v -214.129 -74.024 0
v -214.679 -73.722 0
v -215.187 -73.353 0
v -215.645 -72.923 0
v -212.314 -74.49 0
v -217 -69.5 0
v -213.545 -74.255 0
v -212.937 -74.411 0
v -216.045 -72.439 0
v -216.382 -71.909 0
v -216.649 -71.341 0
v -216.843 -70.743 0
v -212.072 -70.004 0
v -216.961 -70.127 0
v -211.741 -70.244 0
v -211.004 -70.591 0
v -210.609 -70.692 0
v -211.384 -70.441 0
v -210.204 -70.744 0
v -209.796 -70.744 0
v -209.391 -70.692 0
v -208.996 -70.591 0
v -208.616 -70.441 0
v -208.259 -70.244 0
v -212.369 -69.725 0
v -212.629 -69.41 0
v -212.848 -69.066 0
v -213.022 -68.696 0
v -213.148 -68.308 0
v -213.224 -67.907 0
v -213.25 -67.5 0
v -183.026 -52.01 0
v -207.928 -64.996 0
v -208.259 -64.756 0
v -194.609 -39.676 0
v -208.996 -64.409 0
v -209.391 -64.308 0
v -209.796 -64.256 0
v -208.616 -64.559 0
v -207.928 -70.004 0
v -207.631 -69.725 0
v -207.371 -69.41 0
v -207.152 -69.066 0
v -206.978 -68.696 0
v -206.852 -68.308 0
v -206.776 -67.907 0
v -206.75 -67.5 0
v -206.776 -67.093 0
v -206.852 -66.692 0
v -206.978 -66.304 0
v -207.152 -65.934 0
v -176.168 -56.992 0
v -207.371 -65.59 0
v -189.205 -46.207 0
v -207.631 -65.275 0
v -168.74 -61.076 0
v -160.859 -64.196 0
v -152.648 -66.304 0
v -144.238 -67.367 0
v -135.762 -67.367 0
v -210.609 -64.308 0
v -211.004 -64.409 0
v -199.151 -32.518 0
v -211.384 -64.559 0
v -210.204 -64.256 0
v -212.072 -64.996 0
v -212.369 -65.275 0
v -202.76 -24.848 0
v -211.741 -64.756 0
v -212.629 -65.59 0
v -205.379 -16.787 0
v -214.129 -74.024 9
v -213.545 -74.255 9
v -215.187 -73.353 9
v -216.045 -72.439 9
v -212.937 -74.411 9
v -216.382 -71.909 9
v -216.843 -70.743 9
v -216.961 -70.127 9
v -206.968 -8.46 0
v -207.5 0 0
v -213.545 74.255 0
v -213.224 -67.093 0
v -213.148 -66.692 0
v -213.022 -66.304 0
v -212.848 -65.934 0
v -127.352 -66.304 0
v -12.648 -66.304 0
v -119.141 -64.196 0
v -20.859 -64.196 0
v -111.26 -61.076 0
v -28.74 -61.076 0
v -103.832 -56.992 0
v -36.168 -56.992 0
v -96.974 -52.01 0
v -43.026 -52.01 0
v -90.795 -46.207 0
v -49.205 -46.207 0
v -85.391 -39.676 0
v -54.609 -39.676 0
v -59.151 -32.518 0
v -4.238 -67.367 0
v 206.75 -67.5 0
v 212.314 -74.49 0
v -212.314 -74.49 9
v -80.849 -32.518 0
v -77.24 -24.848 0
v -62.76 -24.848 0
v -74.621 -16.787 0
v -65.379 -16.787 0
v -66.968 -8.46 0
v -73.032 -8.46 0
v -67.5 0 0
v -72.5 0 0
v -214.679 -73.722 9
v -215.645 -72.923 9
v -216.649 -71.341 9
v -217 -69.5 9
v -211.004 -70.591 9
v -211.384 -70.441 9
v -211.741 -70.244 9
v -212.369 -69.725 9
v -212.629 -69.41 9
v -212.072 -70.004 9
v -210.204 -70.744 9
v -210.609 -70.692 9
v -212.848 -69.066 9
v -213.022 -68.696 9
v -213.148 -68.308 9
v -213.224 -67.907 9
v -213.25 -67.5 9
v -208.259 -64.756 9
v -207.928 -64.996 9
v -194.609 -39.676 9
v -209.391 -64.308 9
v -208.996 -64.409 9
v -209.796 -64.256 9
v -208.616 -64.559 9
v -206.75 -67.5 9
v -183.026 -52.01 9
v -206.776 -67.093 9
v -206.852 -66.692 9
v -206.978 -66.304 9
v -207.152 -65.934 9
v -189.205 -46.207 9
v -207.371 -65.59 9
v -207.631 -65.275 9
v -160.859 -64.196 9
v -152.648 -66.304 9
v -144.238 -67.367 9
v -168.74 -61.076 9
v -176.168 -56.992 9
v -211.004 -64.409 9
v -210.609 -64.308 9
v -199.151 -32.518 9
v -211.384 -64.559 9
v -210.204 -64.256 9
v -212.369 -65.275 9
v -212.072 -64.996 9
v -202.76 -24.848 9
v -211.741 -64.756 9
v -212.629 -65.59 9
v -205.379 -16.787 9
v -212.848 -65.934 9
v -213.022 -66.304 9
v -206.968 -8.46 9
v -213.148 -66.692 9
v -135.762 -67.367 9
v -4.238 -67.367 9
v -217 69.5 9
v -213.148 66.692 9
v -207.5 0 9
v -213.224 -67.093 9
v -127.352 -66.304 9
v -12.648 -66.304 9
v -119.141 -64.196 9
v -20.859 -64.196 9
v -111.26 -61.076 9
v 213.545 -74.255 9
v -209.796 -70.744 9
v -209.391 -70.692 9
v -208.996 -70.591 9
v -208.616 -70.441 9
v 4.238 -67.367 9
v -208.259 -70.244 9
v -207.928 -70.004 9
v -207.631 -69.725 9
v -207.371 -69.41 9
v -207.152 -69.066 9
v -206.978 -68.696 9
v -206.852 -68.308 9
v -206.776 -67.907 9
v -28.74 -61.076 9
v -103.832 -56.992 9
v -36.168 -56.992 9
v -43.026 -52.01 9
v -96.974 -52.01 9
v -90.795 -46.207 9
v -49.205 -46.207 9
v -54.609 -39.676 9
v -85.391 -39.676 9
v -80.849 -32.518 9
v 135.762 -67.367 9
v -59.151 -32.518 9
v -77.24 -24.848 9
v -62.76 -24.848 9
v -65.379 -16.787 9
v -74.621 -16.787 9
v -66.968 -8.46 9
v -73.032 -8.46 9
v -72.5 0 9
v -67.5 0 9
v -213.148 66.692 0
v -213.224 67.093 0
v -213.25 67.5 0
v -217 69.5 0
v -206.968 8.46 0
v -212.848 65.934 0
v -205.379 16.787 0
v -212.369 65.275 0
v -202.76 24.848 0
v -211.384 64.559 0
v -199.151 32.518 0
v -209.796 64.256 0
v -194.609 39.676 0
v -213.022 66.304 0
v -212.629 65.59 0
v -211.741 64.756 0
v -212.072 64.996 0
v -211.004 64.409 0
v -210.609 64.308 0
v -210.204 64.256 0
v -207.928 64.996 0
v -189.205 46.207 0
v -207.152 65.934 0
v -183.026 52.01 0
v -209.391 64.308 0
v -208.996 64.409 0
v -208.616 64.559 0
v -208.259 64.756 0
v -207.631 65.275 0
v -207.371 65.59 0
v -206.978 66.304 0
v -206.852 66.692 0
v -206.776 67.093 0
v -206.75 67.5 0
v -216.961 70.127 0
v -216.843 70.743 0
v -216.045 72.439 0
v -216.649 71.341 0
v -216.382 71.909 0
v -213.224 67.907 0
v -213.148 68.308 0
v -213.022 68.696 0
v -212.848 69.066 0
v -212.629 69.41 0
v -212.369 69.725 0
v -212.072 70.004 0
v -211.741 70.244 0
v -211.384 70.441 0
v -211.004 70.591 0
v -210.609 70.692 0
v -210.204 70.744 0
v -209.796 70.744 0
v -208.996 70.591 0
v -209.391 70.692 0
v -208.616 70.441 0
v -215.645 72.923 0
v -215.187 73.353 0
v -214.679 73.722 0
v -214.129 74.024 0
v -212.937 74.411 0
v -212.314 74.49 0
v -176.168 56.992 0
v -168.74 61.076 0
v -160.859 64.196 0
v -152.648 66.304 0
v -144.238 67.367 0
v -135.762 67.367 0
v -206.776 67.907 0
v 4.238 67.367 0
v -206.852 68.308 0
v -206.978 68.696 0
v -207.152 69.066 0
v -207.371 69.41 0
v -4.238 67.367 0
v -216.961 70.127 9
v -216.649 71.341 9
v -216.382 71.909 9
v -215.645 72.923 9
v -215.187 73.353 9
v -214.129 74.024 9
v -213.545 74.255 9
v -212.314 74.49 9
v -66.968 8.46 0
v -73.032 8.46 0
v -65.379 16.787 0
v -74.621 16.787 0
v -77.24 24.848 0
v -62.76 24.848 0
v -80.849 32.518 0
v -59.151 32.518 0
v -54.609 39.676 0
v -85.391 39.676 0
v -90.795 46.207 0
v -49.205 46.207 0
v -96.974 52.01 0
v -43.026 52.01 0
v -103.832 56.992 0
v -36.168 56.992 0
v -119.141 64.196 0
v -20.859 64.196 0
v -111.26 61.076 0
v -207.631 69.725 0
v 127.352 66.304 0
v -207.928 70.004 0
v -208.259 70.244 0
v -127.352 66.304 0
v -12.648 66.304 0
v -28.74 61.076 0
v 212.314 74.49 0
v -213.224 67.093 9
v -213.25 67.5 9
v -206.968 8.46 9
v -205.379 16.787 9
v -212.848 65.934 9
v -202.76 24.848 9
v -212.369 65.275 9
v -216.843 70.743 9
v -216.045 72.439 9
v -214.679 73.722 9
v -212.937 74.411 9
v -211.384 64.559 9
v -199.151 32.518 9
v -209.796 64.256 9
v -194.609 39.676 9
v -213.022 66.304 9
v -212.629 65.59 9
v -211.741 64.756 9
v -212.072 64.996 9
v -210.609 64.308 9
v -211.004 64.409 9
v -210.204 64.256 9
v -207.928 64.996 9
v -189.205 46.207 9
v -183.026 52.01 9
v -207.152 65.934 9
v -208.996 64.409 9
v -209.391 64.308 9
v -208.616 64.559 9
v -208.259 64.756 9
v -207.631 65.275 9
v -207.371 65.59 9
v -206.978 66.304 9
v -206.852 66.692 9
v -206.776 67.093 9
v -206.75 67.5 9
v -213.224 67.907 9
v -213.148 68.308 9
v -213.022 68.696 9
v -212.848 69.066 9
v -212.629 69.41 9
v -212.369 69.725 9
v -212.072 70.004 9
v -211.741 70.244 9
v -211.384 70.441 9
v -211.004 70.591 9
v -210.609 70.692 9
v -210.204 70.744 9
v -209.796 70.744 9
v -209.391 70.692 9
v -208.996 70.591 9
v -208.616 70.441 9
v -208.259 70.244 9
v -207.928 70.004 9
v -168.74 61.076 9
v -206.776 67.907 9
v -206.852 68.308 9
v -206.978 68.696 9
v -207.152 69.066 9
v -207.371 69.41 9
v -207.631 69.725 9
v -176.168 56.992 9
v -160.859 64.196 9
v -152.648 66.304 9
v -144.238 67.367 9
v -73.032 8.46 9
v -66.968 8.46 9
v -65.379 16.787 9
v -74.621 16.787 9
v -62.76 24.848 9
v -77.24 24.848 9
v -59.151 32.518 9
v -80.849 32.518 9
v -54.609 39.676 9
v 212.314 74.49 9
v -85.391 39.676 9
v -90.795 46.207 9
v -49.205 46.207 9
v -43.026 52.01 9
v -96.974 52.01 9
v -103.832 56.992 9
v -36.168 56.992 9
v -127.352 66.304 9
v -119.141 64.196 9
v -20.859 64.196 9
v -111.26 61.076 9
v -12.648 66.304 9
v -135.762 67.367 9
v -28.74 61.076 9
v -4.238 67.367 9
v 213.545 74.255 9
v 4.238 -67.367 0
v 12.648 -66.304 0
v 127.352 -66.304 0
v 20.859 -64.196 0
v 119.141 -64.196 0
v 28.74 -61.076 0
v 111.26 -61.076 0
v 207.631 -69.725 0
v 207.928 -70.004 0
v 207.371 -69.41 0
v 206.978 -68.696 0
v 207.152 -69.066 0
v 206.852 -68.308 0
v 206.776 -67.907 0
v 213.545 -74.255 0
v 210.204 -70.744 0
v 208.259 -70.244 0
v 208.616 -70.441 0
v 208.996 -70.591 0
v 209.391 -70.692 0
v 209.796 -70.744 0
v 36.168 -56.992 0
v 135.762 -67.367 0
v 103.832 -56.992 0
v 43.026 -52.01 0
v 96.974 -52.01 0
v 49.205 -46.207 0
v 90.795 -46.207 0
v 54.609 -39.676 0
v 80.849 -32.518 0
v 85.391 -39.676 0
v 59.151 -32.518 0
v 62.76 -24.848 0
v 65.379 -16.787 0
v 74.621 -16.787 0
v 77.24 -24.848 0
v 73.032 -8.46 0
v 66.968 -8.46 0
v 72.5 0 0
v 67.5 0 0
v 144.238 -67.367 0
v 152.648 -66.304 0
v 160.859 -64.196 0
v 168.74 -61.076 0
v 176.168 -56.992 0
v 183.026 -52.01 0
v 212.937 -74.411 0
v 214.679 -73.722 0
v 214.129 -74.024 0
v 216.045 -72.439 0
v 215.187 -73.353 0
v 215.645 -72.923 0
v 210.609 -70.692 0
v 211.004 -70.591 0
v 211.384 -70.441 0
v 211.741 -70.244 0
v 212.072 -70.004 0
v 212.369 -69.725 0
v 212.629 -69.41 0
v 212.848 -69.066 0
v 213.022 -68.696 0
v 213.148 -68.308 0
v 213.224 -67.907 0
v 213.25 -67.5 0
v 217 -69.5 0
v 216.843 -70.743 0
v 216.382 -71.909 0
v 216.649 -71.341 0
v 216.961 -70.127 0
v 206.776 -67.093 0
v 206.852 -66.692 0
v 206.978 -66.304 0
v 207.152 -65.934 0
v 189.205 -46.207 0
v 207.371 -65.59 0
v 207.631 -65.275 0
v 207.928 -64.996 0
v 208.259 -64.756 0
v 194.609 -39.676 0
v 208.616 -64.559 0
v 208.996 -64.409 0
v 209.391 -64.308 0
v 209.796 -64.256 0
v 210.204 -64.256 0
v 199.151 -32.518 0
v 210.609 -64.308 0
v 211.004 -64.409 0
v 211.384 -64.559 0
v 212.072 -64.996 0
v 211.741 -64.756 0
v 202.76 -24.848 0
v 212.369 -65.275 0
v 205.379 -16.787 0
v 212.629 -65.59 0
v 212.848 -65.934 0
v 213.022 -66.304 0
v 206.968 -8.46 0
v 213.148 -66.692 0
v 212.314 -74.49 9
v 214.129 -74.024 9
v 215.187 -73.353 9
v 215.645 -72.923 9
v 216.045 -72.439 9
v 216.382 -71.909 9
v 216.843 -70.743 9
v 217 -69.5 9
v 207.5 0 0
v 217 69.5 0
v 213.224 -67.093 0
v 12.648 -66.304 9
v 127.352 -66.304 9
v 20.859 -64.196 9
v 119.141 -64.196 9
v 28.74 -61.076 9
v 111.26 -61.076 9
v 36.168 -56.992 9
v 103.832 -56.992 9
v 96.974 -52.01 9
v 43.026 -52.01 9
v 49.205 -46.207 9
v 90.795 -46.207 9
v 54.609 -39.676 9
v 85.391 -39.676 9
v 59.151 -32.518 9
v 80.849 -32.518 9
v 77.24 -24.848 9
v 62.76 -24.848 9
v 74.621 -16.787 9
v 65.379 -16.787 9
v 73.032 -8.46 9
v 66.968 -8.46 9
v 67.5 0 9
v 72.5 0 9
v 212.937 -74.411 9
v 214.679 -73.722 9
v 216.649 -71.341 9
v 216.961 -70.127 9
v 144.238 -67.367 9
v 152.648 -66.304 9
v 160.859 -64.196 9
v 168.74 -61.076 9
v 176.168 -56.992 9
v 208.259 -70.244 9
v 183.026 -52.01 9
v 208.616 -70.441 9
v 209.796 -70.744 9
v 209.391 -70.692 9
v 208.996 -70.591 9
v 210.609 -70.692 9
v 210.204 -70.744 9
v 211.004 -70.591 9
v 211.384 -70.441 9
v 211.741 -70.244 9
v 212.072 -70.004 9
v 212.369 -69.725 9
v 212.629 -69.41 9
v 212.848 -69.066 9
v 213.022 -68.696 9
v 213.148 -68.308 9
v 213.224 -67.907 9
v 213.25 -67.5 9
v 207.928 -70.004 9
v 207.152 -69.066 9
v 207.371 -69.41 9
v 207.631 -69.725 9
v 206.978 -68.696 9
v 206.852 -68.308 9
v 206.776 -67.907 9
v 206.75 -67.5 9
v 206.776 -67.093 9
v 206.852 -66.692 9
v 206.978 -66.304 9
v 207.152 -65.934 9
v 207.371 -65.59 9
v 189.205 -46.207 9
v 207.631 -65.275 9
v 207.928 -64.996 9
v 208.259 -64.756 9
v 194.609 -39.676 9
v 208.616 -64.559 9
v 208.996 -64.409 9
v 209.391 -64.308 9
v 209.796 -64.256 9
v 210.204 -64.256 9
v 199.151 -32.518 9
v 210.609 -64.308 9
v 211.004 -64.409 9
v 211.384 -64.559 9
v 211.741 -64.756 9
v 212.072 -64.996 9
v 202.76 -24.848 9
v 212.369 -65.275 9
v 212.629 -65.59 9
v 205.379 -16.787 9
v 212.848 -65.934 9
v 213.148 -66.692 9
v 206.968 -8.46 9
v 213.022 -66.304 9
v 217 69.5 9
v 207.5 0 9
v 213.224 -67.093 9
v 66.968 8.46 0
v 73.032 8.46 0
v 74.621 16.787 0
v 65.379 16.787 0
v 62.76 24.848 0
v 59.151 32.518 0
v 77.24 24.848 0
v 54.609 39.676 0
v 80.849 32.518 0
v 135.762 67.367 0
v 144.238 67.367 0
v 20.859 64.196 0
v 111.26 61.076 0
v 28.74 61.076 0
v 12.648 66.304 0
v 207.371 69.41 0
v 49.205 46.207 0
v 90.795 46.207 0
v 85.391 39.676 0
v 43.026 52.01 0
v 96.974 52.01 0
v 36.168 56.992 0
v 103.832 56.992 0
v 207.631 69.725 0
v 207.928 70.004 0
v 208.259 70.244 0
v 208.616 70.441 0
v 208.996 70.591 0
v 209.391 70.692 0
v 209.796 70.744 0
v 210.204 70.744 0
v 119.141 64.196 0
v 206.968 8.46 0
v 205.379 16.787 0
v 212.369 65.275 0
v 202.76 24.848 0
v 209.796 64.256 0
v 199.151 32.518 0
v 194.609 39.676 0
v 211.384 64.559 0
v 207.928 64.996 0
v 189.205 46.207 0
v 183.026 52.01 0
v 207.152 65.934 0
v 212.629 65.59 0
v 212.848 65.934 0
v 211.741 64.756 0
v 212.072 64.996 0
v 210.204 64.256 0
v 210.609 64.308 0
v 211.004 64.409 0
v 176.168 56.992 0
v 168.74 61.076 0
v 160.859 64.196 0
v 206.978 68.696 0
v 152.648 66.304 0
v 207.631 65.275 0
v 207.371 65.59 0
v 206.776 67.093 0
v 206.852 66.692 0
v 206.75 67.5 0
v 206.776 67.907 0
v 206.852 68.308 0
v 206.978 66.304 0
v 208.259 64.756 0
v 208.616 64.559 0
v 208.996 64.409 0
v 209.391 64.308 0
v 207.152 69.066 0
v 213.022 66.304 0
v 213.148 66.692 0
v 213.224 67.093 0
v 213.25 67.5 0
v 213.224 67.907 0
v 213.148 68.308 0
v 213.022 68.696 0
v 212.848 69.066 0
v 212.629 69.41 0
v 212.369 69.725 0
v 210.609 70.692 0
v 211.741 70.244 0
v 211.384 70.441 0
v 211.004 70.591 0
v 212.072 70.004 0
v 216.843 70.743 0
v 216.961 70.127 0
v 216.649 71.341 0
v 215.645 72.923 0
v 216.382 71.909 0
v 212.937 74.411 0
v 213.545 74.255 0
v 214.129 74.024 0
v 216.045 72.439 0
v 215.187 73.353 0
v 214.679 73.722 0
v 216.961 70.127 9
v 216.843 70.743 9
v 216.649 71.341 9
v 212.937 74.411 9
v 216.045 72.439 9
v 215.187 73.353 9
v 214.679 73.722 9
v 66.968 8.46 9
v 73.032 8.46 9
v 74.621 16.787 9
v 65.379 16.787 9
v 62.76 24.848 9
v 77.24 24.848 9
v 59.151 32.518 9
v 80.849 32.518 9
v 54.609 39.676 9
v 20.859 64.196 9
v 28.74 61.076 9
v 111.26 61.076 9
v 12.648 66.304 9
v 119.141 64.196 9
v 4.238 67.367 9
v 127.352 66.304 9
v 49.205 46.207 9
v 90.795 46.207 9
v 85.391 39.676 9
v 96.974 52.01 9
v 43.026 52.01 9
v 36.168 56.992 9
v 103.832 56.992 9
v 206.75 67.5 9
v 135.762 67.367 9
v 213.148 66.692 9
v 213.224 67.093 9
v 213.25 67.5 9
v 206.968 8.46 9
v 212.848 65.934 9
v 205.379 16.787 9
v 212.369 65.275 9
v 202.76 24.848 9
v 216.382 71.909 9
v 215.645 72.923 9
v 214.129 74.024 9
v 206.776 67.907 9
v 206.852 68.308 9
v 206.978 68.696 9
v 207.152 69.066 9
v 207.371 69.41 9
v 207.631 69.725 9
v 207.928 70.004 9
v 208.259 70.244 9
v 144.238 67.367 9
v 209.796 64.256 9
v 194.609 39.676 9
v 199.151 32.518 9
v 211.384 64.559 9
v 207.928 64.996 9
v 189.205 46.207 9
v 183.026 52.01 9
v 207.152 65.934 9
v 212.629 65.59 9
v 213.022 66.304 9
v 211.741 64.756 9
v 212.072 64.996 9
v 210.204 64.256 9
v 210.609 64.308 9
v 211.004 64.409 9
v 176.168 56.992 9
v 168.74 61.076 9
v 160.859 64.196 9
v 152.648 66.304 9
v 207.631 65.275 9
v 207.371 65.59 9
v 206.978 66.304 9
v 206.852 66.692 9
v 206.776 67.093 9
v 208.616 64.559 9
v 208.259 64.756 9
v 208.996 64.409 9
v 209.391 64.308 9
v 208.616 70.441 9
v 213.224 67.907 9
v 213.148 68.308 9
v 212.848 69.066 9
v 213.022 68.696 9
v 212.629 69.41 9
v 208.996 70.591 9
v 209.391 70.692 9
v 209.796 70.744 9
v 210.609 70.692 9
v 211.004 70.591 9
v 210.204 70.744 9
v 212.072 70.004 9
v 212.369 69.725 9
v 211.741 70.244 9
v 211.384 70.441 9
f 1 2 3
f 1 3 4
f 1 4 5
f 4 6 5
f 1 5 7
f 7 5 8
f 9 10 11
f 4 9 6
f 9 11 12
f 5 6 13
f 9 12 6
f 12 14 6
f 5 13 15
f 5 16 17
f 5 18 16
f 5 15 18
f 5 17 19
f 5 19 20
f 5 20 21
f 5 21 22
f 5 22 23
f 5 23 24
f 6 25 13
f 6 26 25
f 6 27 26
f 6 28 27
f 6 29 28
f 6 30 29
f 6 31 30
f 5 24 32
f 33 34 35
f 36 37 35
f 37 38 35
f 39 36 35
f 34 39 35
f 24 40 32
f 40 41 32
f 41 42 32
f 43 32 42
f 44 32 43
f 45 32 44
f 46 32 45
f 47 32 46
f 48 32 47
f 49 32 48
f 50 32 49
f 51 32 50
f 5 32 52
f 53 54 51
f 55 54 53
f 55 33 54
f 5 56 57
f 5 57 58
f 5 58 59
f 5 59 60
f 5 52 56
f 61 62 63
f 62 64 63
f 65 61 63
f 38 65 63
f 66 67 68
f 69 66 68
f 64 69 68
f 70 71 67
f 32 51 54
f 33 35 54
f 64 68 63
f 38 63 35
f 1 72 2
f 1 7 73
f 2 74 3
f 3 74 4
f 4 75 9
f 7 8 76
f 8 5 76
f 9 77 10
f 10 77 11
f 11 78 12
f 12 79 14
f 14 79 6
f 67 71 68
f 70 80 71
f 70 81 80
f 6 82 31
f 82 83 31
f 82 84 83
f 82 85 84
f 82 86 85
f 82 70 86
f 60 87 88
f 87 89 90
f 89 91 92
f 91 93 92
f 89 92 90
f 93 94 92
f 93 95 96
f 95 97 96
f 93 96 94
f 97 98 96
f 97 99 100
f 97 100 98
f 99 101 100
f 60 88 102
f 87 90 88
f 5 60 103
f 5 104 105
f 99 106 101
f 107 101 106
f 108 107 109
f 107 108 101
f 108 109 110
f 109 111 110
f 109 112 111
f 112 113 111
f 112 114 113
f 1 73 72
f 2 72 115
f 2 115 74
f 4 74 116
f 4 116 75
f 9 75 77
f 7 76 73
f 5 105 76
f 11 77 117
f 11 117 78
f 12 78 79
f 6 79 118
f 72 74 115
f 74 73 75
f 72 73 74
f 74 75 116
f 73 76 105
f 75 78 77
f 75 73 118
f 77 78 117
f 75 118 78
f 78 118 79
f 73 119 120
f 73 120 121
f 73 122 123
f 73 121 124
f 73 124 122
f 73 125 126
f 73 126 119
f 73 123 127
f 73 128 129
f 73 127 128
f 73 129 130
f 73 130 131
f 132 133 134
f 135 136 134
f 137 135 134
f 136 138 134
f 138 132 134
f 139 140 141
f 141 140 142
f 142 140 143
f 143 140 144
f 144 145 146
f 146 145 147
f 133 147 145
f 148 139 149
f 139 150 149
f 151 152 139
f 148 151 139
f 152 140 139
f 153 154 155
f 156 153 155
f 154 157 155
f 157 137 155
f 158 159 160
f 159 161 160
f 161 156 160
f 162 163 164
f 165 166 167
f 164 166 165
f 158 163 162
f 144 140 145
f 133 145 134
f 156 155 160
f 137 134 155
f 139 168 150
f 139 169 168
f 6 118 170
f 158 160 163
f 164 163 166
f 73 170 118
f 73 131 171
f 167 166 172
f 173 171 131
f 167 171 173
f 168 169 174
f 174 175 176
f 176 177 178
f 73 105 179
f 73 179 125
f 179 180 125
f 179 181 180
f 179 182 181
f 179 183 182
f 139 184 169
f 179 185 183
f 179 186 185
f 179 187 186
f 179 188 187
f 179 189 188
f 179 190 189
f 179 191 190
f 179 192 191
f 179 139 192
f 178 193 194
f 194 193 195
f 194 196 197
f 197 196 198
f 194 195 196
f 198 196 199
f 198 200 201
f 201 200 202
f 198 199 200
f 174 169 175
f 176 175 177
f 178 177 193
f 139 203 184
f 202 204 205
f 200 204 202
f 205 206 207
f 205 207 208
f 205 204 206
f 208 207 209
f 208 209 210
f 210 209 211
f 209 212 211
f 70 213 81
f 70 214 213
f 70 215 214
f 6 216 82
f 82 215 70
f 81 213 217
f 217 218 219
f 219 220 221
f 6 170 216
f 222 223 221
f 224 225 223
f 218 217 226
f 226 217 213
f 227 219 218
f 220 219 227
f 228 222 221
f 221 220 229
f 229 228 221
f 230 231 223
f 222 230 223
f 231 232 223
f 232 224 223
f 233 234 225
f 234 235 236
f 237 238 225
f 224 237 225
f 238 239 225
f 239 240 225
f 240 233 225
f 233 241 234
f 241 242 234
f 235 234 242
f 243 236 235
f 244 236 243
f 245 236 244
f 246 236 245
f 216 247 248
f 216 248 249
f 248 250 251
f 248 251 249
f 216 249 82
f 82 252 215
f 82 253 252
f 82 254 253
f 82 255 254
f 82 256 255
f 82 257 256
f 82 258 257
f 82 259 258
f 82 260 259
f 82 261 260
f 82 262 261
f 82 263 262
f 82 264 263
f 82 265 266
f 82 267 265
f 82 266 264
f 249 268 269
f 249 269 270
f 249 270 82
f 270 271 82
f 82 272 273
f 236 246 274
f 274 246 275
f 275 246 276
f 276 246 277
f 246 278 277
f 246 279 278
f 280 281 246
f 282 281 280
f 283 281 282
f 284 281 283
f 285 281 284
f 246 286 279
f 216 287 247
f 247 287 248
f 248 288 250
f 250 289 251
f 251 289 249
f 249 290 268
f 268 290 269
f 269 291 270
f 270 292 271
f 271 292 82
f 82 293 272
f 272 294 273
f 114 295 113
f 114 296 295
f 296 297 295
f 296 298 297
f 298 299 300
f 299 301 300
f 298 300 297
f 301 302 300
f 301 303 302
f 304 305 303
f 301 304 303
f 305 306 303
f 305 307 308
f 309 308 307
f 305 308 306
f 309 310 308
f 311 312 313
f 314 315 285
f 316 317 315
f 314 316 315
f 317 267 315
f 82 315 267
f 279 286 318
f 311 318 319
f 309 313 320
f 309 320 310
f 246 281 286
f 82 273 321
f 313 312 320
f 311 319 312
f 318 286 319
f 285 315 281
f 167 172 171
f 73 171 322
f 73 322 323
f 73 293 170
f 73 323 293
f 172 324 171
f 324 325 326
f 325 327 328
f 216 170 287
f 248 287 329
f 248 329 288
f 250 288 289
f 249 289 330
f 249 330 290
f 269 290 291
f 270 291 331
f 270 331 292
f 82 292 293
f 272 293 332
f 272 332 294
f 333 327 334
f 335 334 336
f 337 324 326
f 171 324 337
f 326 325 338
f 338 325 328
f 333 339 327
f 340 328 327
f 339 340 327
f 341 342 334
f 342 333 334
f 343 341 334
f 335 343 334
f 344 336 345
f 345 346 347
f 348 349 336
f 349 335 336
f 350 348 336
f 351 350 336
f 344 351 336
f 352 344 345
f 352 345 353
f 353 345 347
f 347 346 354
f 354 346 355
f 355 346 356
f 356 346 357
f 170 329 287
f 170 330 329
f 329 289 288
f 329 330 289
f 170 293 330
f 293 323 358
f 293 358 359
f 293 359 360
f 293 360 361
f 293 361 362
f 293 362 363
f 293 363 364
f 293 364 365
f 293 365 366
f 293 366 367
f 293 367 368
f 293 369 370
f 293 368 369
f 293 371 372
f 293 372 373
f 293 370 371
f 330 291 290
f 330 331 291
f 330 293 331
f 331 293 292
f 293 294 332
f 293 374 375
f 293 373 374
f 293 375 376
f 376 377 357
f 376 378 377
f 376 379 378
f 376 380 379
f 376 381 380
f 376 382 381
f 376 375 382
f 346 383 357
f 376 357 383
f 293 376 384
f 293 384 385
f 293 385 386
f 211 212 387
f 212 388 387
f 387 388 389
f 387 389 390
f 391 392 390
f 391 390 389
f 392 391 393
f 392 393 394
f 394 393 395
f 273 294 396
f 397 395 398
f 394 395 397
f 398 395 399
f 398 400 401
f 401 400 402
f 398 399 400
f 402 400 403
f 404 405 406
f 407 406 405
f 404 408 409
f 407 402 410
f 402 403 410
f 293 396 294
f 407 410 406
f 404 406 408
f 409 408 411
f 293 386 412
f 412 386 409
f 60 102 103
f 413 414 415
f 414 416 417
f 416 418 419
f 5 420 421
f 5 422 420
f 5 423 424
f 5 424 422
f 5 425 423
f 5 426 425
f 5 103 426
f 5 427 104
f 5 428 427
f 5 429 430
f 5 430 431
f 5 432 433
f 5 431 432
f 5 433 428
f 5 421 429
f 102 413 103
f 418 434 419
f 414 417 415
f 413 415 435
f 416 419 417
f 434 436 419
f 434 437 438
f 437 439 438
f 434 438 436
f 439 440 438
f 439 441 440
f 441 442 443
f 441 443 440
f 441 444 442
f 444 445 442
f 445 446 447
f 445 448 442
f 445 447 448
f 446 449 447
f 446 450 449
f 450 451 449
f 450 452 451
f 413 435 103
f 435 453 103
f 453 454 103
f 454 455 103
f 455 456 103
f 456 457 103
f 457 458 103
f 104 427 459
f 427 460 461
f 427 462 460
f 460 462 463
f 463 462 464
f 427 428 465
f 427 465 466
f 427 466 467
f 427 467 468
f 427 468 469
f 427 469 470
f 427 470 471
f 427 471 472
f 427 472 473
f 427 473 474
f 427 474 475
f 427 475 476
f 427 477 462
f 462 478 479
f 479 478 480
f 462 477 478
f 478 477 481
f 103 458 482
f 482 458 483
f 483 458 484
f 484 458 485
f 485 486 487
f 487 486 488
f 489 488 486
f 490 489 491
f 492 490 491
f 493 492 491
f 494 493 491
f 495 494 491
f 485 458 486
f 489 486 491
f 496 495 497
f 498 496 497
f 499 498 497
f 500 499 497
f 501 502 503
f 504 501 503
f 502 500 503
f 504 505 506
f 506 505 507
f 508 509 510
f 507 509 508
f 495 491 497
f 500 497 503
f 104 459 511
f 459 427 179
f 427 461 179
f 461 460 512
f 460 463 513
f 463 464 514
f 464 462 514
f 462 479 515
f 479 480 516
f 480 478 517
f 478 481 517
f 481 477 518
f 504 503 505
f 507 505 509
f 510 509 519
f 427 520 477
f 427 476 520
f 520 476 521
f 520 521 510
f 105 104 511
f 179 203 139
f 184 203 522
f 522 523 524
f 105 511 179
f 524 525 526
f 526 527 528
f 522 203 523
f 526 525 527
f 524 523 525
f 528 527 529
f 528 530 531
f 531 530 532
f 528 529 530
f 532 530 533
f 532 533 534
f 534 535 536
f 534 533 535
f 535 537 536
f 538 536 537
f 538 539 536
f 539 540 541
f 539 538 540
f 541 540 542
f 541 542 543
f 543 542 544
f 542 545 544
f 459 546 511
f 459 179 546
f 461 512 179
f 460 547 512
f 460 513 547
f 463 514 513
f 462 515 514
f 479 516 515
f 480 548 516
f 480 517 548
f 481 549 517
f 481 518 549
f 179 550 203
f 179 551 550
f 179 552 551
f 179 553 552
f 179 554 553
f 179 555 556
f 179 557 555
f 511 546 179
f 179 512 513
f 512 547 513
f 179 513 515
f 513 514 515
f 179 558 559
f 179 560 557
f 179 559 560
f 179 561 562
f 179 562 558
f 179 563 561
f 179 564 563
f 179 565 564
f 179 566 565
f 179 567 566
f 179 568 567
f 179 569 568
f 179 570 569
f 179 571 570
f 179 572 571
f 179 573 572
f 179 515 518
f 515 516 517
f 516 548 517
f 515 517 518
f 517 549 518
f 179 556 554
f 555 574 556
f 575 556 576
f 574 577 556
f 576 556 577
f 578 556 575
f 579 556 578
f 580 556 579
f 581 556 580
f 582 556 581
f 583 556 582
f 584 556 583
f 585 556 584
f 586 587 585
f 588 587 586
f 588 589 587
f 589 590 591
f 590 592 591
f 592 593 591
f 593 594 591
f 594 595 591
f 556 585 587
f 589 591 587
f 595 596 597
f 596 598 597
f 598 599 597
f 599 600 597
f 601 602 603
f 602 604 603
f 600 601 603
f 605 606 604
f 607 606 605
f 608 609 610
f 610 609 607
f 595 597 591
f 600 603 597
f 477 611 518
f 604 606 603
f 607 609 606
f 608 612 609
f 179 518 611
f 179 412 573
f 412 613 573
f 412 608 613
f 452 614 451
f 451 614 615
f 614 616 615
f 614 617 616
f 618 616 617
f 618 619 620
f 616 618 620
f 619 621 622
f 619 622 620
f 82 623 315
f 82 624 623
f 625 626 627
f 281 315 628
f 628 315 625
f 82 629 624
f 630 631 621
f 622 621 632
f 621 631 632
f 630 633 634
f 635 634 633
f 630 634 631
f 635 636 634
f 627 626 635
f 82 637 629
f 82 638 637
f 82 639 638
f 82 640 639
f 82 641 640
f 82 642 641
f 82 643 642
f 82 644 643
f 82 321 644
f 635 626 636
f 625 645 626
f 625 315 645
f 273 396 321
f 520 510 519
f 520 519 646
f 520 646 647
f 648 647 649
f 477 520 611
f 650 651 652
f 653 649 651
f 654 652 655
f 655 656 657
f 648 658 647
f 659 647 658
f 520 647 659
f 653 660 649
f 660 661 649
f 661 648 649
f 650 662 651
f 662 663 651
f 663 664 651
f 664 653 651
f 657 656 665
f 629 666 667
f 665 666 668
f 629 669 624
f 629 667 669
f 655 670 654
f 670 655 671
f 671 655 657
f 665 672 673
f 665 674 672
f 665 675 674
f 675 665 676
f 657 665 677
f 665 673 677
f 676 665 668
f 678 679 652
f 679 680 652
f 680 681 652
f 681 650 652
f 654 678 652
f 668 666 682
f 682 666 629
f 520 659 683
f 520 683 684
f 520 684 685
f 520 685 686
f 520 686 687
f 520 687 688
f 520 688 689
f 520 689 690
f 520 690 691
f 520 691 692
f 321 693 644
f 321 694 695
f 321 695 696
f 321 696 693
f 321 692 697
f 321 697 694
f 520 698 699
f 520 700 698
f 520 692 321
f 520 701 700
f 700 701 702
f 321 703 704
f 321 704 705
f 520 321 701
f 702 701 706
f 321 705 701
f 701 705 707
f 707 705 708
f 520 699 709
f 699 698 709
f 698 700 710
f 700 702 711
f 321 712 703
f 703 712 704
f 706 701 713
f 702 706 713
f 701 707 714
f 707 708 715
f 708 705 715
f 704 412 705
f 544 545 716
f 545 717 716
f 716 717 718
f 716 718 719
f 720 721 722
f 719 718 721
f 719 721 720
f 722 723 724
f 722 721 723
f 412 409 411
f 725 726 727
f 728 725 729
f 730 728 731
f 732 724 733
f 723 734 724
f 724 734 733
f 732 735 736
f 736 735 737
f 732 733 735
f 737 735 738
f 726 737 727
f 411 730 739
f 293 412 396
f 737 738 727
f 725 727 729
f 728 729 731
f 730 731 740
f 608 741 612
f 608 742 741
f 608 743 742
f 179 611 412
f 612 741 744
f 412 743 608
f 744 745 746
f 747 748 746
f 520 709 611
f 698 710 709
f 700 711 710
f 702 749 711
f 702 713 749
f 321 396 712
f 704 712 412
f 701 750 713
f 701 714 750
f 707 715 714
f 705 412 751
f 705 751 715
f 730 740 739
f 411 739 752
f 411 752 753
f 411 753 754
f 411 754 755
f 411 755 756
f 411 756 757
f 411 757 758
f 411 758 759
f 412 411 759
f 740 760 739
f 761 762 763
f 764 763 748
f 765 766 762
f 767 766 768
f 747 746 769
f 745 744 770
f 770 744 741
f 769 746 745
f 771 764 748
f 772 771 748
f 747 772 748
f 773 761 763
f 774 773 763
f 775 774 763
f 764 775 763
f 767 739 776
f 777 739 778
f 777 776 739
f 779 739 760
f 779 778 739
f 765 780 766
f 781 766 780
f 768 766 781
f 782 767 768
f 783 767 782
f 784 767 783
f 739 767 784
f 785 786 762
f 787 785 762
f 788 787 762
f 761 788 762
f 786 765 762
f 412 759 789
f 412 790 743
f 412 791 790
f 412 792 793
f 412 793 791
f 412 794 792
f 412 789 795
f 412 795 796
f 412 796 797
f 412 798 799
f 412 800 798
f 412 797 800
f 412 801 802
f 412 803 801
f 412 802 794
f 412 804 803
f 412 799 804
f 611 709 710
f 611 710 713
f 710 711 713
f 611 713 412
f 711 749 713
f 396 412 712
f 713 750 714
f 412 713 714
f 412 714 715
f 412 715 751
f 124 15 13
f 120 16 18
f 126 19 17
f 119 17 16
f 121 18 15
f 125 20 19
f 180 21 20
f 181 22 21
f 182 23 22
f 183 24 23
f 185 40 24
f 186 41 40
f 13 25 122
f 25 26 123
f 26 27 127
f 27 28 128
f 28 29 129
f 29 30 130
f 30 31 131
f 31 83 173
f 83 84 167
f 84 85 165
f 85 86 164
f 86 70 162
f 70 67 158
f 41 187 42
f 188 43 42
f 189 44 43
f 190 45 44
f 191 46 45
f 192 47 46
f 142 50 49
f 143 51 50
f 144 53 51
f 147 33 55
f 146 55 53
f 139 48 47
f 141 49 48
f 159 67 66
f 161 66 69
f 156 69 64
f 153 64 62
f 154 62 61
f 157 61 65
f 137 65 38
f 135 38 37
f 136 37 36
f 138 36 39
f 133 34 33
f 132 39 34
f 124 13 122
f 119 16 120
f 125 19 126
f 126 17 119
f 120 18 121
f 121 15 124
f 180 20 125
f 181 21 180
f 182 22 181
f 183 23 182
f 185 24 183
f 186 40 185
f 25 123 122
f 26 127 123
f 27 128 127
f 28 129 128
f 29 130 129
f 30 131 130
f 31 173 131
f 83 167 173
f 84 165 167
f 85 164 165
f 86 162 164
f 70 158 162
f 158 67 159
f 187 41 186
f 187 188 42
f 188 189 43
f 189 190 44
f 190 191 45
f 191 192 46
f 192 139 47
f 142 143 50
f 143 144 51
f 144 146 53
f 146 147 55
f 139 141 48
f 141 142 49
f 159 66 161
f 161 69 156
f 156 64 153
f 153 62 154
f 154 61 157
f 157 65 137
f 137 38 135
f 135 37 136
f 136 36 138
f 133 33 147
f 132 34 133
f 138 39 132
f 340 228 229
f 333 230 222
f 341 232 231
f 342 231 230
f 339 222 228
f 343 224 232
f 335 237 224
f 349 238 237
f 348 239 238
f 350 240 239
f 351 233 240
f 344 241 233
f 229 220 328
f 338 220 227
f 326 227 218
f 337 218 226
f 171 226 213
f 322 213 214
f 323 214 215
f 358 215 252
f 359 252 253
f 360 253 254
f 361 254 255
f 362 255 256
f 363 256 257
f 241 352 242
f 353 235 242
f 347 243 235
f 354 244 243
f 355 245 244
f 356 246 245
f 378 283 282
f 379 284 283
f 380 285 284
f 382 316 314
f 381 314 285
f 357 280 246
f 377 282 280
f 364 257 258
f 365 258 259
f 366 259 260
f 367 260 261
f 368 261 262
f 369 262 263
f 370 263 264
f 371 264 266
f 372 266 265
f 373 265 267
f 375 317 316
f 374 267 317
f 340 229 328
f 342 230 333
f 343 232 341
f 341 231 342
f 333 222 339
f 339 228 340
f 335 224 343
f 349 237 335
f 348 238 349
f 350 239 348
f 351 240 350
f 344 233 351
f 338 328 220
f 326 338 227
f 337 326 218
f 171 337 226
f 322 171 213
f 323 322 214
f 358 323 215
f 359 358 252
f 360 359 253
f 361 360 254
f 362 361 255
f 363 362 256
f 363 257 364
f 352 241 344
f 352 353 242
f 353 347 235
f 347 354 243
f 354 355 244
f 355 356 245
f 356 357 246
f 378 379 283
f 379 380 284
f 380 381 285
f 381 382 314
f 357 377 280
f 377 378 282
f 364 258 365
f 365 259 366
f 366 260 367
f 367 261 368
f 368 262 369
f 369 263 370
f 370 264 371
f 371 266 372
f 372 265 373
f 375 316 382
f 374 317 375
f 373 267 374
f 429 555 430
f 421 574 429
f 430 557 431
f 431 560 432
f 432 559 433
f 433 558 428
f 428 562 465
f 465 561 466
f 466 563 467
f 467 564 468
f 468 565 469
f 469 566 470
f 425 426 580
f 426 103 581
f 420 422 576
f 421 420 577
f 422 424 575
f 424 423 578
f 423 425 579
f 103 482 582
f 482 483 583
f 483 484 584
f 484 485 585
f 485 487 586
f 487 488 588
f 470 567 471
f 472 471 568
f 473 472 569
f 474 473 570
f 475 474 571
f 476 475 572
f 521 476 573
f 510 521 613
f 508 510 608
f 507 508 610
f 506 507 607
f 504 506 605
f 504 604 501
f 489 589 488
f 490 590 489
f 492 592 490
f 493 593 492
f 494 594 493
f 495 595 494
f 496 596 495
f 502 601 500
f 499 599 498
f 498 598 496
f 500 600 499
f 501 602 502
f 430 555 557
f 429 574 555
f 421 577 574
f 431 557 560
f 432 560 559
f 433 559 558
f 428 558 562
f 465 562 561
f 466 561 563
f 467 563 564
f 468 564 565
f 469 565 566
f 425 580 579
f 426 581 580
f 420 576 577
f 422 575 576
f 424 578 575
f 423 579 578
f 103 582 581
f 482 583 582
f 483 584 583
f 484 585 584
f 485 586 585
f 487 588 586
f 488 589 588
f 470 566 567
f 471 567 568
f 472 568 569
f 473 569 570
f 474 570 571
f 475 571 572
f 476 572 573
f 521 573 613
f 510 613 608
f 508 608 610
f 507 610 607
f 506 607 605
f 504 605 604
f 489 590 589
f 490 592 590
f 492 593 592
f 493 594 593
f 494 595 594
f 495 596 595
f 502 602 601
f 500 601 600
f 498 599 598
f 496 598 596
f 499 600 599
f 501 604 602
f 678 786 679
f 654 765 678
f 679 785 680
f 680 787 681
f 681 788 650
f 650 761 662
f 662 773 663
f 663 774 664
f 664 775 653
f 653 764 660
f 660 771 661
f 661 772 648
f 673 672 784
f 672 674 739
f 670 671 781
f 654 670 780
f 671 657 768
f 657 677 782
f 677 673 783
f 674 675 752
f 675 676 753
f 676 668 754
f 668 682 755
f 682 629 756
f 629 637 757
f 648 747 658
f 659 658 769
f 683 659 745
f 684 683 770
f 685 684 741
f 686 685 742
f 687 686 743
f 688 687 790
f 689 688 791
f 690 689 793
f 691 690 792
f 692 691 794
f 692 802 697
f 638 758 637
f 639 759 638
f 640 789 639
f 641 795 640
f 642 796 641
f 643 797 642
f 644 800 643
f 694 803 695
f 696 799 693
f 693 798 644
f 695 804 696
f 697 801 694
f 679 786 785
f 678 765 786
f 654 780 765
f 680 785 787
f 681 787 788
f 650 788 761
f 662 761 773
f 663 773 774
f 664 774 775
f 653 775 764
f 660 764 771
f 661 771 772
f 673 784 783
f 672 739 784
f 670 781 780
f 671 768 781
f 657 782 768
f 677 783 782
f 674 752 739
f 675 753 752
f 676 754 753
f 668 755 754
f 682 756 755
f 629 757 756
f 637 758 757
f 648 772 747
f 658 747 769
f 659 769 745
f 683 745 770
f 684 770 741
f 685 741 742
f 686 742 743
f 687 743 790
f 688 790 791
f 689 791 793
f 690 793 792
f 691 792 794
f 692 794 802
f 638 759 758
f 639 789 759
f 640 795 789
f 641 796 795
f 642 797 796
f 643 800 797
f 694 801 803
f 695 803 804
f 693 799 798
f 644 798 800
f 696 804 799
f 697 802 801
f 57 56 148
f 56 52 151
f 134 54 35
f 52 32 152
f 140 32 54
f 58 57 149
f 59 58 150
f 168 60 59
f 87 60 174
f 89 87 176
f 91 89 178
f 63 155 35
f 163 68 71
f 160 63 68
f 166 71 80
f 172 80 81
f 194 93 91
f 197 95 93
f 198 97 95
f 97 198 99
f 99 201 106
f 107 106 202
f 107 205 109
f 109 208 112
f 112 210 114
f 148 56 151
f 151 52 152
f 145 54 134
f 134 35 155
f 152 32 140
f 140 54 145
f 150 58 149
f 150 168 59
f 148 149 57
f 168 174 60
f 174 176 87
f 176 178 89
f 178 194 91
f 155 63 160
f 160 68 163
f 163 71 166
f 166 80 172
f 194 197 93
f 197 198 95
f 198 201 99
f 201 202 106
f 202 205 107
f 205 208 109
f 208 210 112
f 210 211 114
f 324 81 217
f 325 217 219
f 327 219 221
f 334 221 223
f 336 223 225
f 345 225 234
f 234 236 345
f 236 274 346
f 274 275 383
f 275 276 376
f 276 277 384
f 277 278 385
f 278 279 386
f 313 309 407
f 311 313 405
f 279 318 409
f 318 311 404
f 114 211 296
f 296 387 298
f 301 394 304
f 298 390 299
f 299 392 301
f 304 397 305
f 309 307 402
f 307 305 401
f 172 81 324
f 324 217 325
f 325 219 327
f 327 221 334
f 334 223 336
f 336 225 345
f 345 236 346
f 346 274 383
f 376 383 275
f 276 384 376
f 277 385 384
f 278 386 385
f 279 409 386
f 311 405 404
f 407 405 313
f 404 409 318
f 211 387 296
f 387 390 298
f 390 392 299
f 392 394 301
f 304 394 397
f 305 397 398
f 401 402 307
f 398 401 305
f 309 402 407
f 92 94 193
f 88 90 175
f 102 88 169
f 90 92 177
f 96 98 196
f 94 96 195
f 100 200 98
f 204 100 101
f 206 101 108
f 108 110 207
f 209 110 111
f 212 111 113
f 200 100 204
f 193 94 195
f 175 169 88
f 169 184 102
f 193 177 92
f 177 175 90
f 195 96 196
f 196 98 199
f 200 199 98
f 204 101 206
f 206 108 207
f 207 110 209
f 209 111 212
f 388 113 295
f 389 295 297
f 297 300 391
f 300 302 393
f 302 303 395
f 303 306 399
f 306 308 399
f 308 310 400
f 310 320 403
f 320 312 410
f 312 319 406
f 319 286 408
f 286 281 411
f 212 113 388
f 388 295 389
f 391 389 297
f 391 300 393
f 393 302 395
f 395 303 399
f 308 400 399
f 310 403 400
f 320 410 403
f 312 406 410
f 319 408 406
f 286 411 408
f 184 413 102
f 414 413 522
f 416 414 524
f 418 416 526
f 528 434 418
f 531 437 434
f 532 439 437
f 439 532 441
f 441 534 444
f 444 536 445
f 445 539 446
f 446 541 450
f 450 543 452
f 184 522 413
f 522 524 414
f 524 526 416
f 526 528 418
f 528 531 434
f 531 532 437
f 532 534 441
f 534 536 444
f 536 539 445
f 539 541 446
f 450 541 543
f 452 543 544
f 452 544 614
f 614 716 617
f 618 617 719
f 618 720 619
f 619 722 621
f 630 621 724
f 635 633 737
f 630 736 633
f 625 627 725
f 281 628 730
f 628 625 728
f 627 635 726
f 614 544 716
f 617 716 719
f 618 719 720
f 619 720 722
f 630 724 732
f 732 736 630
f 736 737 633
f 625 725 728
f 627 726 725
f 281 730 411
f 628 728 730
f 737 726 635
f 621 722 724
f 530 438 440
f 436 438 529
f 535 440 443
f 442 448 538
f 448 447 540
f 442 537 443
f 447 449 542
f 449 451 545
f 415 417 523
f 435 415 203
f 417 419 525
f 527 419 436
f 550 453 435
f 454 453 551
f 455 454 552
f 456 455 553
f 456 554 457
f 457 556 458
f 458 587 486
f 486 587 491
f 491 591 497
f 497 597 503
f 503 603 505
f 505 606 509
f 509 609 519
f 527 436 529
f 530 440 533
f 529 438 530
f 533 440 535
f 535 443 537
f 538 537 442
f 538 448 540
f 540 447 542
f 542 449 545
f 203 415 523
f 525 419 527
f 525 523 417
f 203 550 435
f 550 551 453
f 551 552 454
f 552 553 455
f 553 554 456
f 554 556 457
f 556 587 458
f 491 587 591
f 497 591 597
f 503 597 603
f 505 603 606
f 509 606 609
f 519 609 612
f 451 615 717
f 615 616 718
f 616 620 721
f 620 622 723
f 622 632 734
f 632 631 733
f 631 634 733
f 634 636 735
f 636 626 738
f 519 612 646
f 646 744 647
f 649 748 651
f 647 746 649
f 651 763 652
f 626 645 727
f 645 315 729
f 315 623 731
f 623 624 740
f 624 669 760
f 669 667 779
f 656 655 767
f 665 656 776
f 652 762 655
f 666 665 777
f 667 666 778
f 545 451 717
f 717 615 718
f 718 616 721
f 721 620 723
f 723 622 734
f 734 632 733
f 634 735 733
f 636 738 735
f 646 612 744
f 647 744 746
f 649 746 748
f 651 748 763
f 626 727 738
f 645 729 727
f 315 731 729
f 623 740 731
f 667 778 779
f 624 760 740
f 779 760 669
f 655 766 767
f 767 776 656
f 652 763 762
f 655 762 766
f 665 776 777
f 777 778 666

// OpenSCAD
$fn = 50;

difference() {
	union() {
		hull() {
			translate(v = [-212.0, 69.5, 0]) {
				cylinder(h = 9, r = 5);
			}
			translate(v = [212.0, 69.5, 0]) {
				cylinder(h = 9, r = 5);
			}
			translate(v = [-212.0, -69.5, 0]) {
				cylinder(h = 9, r = 5);
			}
			translate(v = [212.0, -69.5, 0]) {
				cylinder(h = 9, r = 5);
			}
		}
	}
	union() {
		translate(v = [-210.0, -67.5, -100.0]) {
			cylinder(h = 200, r = 3.25);
		}
		translate(v = [-210.0, 67.5, -100.0]) {
			cylinder(h = 200, r = 3.25);
		}
		translate(v = [210.0, -67.5, -100.0]) {
			cylinder(h = 200, r = 3.25);
		}
		translate(v = [210.0, 67.5, -100.0]) {
			cylinder(h = 200, r = 3.25);
		}
		translate(v = [-210.0, -67.5, -100.0]) {
			cylinder(h = 200, r = 1.8);
		}
		translate(v = [-210.0, 67.5, -100.0]) {
			cylinder(h = 200, r = 1.8);
		}
		translate(v = [210.0, -67.5, -100.0]) {
			cylinder(h = 200, r = 1.8);
		}
		translate(v = [210.0, 67.5, -100.0]) {
			cylinder(h = 200, r = 1.8);
		}
		translate(v = [-140.0, 0, 0.0]) {
			cylinder(h = 9, r = 67.5);
		}
		cylinder(h = 9, r = 67.5);
		translate(v = [140.0, 0, 0.0]) {
			cylinder(h = 9, r = 67.5);
		}
	}
}
